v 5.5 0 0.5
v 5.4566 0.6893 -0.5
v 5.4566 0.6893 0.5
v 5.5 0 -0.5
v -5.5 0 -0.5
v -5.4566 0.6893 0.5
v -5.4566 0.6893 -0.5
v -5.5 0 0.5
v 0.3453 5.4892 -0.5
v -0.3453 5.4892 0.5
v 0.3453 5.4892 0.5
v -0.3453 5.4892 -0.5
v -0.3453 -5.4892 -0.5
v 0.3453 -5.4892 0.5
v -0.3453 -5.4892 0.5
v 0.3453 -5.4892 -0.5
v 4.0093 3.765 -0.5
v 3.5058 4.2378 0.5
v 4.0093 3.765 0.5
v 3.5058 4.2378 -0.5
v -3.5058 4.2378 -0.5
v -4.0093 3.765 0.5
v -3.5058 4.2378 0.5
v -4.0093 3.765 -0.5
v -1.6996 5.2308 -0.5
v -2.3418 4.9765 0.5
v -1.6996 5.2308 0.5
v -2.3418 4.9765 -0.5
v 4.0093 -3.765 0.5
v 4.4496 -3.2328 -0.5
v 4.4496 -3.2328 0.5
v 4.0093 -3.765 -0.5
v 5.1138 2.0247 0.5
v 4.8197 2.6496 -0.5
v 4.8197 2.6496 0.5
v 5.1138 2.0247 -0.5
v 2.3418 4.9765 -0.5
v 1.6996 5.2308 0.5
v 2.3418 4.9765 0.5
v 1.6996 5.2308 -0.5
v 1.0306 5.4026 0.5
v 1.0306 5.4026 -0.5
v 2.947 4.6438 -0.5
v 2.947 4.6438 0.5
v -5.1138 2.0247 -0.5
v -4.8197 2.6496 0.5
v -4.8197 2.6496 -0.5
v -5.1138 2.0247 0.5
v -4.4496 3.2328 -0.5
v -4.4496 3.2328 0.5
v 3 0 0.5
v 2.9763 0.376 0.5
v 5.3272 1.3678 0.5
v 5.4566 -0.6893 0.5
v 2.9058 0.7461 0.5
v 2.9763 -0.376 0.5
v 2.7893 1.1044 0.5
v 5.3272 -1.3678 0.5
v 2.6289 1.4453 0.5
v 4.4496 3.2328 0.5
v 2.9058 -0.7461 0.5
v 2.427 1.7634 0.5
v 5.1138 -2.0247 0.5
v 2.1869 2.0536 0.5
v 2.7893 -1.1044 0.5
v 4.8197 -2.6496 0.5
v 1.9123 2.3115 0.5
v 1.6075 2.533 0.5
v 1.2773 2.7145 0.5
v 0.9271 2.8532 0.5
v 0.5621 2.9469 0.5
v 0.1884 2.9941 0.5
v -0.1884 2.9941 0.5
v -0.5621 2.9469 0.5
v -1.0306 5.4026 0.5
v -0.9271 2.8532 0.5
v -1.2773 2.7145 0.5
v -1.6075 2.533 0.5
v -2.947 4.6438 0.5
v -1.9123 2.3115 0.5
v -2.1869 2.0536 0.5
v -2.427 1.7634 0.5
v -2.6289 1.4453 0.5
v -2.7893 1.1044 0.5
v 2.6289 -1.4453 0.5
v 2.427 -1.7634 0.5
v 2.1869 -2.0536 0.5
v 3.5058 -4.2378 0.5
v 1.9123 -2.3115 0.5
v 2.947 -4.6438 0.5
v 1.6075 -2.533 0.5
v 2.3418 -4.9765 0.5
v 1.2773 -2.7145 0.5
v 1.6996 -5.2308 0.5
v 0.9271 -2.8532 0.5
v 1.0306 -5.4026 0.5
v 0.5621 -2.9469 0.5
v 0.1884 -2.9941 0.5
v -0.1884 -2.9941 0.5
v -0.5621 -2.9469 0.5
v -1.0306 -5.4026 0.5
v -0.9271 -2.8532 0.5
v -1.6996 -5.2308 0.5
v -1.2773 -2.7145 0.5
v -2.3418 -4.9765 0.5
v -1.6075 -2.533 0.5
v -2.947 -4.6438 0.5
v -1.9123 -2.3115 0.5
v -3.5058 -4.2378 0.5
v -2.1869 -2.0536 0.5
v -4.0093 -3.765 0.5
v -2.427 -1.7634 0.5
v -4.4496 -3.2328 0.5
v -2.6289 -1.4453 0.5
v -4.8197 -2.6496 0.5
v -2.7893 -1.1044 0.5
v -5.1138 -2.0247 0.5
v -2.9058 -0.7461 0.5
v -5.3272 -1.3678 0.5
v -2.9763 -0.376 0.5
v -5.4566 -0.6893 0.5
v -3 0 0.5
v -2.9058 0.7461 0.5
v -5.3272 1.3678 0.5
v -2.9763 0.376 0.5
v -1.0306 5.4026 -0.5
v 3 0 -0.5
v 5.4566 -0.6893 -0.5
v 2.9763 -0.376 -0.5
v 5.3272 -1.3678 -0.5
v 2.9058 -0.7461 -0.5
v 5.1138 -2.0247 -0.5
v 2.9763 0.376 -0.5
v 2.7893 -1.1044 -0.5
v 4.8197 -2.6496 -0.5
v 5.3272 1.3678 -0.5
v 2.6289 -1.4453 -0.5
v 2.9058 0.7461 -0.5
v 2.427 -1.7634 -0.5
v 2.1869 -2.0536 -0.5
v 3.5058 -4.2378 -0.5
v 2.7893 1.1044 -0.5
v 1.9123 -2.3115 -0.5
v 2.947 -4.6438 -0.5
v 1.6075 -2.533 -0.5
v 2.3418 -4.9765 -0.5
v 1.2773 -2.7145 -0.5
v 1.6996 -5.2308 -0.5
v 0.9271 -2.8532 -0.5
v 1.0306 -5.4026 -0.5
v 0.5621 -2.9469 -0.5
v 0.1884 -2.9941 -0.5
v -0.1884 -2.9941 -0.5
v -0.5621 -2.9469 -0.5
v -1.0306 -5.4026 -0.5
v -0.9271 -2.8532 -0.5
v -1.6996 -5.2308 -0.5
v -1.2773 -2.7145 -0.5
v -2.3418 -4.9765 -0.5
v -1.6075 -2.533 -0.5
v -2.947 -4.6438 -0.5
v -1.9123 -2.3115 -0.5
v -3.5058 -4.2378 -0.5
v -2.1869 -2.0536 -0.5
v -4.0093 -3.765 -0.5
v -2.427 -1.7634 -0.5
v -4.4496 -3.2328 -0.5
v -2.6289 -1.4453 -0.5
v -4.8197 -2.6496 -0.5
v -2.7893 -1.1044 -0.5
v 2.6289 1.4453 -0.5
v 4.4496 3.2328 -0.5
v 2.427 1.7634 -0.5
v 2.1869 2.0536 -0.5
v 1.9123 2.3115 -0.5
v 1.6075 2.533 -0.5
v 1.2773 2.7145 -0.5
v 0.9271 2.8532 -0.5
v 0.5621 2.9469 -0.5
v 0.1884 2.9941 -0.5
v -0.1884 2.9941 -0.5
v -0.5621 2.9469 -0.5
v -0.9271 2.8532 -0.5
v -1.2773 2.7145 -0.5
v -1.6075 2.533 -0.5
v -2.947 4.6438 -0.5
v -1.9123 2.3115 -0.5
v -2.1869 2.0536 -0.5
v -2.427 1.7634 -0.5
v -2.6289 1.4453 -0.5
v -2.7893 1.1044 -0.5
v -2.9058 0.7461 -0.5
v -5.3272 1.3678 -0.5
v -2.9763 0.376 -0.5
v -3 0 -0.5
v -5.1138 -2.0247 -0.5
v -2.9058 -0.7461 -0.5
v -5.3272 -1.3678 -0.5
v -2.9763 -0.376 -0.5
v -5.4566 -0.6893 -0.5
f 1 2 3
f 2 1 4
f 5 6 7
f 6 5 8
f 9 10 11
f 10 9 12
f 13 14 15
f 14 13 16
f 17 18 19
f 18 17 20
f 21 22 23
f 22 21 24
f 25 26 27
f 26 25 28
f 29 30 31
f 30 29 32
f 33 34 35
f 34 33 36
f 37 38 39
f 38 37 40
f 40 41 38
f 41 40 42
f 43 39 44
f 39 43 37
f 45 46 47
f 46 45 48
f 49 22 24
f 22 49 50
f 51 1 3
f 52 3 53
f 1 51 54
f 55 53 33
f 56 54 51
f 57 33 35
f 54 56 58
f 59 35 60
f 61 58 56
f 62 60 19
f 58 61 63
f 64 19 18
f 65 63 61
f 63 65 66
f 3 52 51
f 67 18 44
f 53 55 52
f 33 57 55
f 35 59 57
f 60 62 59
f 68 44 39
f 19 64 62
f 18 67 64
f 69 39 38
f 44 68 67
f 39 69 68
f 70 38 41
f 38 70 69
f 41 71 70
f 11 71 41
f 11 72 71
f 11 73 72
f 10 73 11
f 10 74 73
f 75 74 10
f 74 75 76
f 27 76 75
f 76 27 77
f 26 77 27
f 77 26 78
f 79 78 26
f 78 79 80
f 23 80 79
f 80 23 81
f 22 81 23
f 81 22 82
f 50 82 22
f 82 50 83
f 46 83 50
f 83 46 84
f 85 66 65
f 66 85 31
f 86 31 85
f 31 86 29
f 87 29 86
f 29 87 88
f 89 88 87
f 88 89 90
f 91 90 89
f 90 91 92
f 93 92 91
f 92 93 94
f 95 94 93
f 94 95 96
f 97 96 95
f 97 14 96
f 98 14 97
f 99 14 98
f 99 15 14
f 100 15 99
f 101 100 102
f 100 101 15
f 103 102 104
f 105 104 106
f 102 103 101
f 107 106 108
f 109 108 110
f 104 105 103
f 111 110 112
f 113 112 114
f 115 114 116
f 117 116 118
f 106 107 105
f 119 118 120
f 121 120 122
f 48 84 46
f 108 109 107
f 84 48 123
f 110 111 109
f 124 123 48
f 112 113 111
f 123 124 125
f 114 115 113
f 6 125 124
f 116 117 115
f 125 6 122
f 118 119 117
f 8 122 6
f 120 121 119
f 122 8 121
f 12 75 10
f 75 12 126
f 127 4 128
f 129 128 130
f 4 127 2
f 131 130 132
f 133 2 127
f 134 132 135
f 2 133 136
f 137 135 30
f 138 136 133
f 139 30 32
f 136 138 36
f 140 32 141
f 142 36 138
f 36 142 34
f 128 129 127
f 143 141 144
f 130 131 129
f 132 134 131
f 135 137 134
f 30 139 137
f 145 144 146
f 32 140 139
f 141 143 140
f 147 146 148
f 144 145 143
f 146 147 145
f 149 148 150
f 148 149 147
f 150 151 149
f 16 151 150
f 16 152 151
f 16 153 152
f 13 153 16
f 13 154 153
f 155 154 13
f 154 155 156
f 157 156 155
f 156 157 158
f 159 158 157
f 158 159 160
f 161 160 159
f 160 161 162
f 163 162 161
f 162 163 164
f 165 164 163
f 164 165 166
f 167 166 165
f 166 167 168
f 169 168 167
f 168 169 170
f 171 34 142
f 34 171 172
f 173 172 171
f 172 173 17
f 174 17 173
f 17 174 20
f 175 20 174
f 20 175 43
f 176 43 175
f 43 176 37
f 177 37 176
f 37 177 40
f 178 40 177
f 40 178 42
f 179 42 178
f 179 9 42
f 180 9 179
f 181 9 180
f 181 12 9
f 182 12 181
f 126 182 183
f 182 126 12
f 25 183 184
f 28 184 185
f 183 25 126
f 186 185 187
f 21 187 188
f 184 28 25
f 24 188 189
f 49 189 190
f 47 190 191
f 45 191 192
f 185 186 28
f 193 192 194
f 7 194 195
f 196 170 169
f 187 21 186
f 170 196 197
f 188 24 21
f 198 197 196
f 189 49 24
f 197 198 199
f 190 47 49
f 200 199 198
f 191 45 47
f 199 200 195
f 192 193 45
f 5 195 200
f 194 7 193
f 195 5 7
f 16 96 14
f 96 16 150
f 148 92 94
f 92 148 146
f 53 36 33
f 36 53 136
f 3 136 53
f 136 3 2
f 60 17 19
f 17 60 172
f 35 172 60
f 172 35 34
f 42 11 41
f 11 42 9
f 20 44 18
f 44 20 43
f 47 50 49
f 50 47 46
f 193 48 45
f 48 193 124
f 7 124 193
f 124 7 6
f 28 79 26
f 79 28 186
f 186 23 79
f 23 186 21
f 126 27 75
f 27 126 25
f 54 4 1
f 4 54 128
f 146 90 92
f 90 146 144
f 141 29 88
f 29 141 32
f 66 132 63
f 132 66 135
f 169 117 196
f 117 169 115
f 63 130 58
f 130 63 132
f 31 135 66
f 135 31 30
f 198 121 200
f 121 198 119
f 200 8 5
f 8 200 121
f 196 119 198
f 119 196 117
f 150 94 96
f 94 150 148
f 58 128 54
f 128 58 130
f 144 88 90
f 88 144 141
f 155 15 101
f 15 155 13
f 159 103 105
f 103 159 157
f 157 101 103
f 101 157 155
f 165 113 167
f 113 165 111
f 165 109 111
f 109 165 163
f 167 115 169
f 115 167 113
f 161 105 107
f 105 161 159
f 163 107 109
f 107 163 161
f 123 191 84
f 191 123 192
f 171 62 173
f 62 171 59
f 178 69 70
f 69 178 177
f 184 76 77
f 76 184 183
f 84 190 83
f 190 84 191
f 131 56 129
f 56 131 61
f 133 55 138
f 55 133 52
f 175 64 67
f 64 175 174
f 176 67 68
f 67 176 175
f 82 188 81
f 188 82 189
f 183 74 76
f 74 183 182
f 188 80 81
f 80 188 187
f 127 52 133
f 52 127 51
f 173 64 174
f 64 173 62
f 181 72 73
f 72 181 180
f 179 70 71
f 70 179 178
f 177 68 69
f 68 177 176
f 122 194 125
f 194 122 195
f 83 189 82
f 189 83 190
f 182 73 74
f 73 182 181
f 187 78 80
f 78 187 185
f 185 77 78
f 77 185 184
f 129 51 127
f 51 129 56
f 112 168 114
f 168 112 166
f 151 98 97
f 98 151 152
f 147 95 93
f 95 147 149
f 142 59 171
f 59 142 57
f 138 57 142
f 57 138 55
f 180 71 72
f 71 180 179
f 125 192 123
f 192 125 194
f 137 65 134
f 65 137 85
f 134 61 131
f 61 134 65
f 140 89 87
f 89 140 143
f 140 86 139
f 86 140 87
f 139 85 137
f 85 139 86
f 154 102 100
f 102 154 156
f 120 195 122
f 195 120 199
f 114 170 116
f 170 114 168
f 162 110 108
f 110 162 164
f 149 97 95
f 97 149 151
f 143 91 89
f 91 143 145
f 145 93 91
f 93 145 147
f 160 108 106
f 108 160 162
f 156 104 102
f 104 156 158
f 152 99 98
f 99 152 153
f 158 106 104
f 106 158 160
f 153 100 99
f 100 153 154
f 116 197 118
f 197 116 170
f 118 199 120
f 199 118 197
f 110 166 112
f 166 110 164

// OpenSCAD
$fn = 50;


difference() {
	union() {
		translate(v = [0, 0, -0.5000000000]) {
			cylinder(h = 1, r = 5.5000000000);
		}
	}
	union() {
		translate(v = [0, 0, -100.0000000000]) {
			cylinder(h = 200, r = 3);
		}
	}
}
